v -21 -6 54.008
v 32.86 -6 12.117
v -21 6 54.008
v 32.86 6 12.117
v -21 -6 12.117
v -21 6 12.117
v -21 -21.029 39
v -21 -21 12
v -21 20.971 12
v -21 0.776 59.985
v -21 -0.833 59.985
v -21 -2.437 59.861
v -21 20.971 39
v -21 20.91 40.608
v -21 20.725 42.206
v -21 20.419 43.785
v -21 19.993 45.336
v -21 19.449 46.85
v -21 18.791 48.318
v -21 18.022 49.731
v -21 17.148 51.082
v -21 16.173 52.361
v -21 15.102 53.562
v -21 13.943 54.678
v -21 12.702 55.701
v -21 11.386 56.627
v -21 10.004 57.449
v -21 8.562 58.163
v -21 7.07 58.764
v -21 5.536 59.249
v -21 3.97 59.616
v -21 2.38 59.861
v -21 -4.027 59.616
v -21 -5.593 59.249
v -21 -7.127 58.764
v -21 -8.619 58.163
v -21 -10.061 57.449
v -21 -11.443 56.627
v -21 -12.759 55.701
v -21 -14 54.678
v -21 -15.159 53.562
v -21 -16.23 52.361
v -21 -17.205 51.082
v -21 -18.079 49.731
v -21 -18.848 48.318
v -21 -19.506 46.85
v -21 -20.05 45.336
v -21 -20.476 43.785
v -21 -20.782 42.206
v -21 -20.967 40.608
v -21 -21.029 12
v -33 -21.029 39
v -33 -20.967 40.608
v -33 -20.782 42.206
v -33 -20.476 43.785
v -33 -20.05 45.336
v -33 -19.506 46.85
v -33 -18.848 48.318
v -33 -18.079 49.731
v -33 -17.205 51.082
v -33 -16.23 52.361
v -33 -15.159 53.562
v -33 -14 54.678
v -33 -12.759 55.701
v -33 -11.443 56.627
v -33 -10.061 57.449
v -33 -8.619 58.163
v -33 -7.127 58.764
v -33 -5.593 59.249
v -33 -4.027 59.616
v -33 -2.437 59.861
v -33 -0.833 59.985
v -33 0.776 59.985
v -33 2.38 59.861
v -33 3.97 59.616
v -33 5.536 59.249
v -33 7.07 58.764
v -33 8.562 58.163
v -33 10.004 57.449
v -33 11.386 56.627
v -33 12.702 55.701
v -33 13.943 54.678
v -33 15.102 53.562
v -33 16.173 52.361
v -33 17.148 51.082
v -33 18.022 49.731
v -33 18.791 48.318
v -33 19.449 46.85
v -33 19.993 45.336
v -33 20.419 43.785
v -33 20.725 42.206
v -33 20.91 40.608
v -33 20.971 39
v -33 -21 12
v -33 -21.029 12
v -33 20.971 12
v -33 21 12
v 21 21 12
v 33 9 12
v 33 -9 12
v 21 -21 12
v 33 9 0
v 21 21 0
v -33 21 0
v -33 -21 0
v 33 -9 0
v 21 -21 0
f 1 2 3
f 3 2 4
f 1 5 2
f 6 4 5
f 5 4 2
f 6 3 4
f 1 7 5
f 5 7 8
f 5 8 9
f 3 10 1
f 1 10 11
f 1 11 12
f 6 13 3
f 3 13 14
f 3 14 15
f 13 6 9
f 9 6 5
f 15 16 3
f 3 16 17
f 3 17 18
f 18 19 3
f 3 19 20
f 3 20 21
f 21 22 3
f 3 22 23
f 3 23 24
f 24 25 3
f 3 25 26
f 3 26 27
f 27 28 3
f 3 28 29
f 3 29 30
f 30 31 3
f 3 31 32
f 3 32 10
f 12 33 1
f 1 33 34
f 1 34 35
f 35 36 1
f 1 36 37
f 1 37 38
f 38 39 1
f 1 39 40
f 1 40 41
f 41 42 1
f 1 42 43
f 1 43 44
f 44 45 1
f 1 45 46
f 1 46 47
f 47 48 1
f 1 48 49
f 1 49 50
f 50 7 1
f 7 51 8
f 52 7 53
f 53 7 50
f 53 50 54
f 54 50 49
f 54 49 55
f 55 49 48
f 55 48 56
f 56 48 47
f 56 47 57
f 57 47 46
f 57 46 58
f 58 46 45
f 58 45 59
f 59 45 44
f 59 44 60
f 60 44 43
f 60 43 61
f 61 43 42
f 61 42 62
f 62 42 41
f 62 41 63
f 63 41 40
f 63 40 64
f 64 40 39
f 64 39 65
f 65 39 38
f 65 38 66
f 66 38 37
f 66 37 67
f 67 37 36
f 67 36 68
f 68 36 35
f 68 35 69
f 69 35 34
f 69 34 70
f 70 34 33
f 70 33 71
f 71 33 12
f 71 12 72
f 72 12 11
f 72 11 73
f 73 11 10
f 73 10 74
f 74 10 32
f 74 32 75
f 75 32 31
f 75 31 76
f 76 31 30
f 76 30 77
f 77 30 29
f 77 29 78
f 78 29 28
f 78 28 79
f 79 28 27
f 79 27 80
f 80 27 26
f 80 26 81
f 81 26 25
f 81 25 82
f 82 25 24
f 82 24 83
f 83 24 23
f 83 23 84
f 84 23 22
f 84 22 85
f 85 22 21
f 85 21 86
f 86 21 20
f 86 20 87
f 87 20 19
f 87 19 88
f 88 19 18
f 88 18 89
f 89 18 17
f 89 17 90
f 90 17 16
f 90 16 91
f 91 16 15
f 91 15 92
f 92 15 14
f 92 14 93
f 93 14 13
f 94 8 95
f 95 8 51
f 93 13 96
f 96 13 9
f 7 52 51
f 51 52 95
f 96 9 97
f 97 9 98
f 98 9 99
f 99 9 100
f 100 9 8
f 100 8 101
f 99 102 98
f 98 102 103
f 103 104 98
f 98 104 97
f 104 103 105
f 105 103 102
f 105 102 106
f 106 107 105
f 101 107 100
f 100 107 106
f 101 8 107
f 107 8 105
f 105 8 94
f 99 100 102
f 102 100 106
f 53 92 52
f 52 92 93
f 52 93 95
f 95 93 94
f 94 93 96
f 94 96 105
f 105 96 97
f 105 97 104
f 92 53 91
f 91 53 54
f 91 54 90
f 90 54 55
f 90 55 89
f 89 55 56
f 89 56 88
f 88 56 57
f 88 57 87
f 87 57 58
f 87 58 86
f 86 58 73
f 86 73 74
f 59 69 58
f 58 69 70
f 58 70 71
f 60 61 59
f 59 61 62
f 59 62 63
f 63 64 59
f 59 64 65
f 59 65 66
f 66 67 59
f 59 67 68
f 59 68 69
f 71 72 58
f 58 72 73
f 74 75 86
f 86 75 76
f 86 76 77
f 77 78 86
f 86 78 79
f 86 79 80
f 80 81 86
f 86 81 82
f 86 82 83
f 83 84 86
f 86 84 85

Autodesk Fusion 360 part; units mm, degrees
sketch "Horizontal" plane through (0, 0, 0) normal (0, 0, 1) x (1, 0, 0)
  line L0 (33, -21) -> (-33, -21)
  line L1 (-33, -21) -> (-33, 21)
  line L2 (-33, 21) -> (33, 21)
  line L3 (33, 21) -> (33, -21)
  line L4 (33, -21) -> (-33, 21) construction
  line L5 (-33, -21) -> (33, 21) construction
  dimension "d1" = 66
  dimension "d2" = 42
extrude "Extrude1" add sketch "Horizontal" along normal blind 12
chamfer "Chamfer1" distance 12 angle 45 2 edges at (33, -21, 6) (33, 21, 6)
sketch "Vertical" plane through (0, 0, 0) normal (0, 0, 1) x (1, 0, 0)
  line L0 (-33, 20.9715) -> (-21, 20.9715)
  line L1 (-21, 20.9715) -> (-21, -21.0285)
  line L2 (-21, -21.0285) -> (-33, -21.0285)
  line L3 (-33, -21.0285) -> (-33, 20.9715)
  line L4 (-33, 20.9715) -> (-21, 20.9715)
  line L5 (-21, 20.9715) -> (-21, -21.0285)
  line L6 (-21, -21.0285) -> (-33, -21.0285)
  line L7 (-33, -21.0285) -> (-33, 20.9715)
  line L8 (-33, -21) -> (-33, 21)
  dimension "d6" = 12
  dimension "d7" = 42
  dimension "d8" = 12
  dimension "d9" = 42
extrude "Extrude2" add sketch "Vertical" along normal blind 60 and the other way blind -12
fillet "Fillet1" radius 21 2 edges at (-27, -21.0285, 60) (-27, 20.9715, 60)
sketch "Triangle" plane through (0, 0, 0) normal (0, 1, 0) x (1, 0, 0)
  line L0 (-21.1404, -54.1172) -> (-21.1404, -12.1172)
  line L1 (-21.1404, -12.1172) -> (32.8596, -12.1172)
  line L2 (32.8596, -12.1172) -> (-21.1404, -54.1172)
  dimension "d16" = 42
  dimension "d17" = 54
extrude "Extrude3" add sketch "Triangle" along normal mid plane 12
equation "d17 = 66 mm - 12 mm"
